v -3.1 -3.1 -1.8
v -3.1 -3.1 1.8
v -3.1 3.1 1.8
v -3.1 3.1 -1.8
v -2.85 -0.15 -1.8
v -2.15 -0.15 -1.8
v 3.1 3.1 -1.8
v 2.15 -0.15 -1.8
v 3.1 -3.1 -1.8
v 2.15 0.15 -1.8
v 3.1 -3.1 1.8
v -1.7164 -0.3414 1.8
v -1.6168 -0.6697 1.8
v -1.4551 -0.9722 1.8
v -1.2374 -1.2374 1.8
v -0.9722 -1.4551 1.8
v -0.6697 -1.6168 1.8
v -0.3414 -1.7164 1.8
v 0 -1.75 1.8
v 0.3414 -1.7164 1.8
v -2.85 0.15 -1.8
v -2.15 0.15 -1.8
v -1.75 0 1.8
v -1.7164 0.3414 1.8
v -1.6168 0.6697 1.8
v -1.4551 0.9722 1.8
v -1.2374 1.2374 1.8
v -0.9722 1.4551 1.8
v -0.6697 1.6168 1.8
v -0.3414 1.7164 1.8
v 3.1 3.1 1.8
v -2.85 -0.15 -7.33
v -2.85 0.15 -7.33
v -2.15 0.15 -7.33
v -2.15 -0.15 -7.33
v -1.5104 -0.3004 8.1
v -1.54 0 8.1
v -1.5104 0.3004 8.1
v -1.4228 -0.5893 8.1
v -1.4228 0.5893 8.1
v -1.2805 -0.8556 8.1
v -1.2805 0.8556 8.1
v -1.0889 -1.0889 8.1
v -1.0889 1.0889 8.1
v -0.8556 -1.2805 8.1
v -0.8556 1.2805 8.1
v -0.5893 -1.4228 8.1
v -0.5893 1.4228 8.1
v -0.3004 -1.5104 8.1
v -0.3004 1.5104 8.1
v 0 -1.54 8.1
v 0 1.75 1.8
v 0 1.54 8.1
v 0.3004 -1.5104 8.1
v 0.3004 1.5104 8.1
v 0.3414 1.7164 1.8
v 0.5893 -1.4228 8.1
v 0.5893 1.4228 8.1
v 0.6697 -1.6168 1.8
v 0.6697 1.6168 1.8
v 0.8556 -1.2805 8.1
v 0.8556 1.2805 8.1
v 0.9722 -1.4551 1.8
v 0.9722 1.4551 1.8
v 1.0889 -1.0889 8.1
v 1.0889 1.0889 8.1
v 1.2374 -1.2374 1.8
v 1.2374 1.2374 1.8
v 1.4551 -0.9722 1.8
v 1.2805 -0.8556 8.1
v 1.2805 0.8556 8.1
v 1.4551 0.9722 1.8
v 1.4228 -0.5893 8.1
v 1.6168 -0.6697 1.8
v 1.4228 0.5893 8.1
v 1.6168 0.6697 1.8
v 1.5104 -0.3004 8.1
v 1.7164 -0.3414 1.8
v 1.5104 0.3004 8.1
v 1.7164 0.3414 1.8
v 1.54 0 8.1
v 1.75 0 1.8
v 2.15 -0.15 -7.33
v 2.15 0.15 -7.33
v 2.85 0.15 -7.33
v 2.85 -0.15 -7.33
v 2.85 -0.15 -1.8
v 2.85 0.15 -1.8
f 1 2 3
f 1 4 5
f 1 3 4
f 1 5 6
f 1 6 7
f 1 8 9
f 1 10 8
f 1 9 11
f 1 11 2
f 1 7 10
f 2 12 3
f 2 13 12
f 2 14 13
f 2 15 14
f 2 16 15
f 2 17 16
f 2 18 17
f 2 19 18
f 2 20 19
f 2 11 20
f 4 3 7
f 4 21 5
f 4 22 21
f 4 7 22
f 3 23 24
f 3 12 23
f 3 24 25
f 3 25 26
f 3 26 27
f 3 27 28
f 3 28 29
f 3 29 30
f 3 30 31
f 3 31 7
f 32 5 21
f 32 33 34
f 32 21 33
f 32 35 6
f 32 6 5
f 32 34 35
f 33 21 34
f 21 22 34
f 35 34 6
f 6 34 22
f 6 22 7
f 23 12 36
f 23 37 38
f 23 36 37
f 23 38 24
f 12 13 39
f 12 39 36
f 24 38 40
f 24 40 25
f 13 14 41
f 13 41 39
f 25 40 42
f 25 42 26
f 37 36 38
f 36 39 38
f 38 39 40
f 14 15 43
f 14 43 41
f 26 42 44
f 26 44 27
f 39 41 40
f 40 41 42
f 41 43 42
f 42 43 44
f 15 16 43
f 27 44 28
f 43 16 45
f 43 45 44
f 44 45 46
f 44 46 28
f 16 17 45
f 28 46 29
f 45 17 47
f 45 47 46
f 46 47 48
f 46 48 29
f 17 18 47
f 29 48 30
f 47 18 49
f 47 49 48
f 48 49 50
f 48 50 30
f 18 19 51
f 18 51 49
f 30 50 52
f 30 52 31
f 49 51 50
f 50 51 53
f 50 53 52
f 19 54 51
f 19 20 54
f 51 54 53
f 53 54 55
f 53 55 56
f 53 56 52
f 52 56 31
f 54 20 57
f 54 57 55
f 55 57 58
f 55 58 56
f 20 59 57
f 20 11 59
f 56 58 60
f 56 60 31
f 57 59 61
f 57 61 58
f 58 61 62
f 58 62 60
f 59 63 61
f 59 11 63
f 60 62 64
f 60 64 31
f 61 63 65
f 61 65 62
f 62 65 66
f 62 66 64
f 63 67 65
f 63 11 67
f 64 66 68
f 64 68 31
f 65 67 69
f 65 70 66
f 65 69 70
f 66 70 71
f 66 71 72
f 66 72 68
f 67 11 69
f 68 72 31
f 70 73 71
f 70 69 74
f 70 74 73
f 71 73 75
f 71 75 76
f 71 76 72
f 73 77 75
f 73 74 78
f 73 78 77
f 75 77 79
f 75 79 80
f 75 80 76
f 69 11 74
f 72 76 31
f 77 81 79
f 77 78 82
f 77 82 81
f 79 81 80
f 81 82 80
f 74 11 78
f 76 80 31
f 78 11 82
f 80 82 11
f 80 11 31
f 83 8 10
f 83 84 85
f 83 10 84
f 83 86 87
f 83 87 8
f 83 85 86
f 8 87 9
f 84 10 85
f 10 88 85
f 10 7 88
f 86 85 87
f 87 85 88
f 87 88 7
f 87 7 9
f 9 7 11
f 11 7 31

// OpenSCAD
// Start: lazy_union
default_5_default_5();
// End: lazy_union

// Modules.

// 'PartMaterial undef-default - default 5.0'
module default_5_default_5() {
  // 'None : _combine_solids_and_holes'
  union() {
    // 'default : _combine_solids_and_holes'
    union() {
      // 'body'
      multmatrix(m=[[1.0, 0.0, 0.0, -3.1], [0.0, 1.0, 0.0, -3.1], [0.0, 0.0, 1.0, -1.8], [0.0, 0.0, 0.0, 1.0]]) {
        // 'body : _combine_solids_and_holes'
        union() {
          // 'body'
          cube(size=[6.2, 6.2, 3.6]);
        }
      }
      // 'shaft'
      multmatrix(m=[[1.0, 0.0, 0.0, 0.0], [0.0, 1.0, 0.0, 0.0], [0.0, 0.0, 1.0, 1.8], [0.0, 0.0, 0.0, 1.0]]) {
        // 'shaft : _combine_solids_and_holes'
        union() {
          // 'shaft'
          cylinder(h=6.3, r1=1.75, r2=1.54, center=false, $fn=32);
        }
      }
      // ('lead', 1)
      multmatrix(m=[[0.0, 0.0, -1.0, -2.15], [0.0, -1.0, 0.0, 0.15], [-1.0, 0.0, 0.0, -1.8], [0.0, 0.0, 0.0, 1.0]]) {
        // "('lead', 1) : _combine_solids_and_holes"
        union() {
          // 'terminal : _combine_solids_and_holes'
          union() {
            // 'terminal'
            cube(size=[5.529999999999999, 0.3, 0.7]);
          }
        }
      }
      // ('lead', 2)
      multmatrix(m=[[0.0, 0.0, 1.0, 2.15], [0.0, 1.0, 0.0, -0.15], [-1.0, 0.0, 0.0, -1.8], [0.0, 0.0, 0.0, 1.0]]) {
        // "('lead', 2) : _combine_solids_and_holes"
        union() {
          // 'terminal : _combine_solids_and_holes'
          union() {
            // 'terminal'
            cube(size=[5.529999999999999, 0.3, 0.7]);
          }
        }
      }
    }
  }
} // end module default_5_default_5
